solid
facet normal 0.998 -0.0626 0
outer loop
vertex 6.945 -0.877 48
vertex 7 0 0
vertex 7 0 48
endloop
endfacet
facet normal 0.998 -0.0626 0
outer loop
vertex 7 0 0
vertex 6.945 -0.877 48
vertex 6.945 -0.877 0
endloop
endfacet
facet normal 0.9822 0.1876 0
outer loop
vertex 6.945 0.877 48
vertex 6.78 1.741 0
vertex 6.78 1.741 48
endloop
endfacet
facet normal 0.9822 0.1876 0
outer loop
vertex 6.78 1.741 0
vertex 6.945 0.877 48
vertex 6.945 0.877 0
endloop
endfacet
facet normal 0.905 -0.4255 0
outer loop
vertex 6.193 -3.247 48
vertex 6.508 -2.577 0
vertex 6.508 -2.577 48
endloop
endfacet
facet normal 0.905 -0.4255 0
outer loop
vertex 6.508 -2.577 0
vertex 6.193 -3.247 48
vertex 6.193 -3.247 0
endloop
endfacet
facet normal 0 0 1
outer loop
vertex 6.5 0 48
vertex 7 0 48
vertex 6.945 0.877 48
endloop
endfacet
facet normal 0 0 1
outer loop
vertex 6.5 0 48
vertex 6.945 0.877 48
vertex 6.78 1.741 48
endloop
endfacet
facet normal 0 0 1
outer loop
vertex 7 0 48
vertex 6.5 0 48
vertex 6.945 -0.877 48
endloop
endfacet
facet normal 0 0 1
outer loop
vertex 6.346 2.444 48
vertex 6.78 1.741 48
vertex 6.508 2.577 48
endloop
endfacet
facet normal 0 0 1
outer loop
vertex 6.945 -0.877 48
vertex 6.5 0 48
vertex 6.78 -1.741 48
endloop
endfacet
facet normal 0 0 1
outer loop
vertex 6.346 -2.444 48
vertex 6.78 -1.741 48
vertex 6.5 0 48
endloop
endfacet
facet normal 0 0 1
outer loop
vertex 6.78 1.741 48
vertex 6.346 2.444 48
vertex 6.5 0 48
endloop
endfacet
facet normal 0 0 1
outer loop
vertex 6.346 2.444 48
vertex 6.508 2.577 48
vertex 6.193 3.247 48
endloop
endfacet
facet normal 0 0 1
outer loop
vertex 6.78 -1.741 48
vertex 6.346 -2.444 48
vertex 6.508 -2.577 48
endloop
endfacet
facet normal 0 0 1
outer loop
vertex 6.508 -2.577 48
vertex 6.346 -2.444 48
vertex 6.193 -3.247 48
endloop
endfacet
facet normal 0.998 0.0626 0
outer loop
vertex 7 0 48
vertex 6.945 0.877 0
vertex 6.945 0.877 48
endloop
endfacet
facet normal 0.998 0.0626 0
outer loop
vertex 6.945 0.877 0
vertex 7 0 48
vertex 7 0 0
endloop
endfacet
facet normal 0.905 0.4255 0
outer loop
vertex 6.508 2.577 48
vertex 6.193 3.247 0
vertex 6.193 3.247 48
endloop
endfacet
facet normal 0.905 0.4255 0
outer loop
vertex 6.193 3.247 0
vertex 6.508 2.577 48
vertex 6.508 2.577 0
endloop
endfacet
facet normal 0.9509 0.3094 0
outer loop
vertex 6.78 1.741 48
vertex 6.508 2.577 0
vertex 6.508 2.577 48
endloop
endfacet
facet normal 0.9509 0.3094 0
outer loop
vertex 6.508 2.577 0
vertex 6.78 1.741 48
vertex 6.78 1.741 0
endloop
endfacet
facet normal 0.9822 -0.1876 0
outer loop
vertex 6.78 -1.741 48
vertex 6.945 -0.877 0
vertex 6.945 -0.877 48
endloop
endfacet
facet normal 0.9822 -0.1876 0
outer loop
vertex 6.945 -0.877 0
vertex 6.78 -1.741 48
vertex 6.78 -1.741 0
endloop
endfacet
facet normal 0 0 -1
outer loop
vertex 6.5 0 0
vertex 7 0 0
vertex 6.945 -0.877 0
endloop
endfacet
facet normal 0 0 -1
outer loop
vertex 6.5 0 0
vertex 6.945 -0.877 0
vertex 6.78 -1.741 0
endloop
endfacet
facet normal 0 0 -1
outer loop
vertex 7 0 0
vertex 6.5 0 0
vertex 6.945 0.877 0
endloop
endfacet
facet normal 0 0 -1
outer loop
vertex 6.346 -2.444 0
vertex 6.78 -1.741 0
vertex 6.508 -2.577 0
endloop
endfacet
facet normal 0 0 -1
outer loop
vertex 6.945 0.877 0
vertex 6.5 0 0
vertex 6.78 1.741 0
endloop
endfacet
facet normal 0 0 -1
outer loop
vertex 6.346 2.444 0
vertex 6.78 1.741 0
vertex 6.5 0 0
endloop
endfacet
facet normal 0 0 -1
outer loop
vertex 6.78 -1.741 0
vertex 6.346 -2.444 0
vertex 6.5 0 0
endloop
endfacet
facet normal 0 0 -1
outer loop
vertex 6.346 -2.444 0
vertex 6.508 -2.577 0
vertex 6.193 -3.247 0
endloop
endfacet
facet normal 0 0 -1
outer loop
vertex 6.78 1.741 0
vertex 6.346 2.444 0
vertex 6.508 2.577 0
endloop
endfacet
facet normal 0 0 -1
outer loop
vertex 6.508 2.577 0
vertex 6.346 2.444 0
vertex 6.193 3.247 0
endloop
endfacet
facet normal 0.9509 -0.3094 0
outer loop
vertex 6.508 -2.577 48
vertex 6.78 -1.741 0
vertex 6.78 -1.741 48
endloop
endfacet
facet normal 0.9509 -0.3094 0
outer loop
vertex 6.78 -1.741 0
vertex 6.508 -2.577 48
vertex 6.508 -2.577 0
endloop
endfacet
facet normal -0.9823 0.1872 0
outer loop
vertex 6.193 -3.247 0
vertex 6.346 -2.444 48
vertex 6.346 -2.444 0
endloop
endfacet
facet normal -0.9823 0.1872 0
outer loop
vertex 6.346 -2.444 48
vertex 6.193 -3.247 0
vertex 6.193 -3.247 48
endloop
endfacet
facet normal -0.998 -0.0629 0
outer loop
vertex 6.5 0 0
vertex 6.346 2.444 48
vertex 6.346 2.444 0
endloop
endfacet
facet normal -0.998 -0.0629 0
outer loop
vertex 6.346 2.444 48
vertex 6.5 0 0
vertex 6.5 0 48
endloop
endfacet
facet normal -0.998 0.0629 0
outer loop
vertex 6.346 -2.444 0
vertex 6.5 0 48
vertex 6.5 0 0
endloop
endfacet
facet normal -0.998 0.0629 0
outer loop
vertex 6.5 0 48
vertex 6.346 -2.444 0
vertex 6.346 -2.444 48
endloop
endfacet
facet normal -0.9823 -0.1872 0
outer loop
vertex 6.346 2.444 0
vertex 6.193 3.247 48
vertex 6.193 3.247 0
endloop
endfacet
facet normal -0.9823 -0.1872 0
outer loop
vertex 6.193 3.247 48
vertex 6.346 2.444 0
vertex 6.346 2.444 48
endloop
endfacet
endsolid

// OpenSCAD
$fn = 50;


difference() {
	union() {
		cylinder(h = 48, r = 7.0000000000);
		translate(v = [-16.0000000000, 0, 0]) {
			cylinder(h = 48, r = 7.0000000000);
		}
	}
	union() {
		cylinder(h = 48, r = 3.2500000000);
		cylinder(h = 48, r = 1.8000000000);
		cylinder(h = 48, r = 1.8000000000);
		cylinder(h = 48, r = 1.8000000000);
		translate(v = [-20.5000000000, 0, 0]) {
			hull() {
				translate(v = [-3.7500000000, 0.0000000000, 0]) {
					cylinder(h = 48, r = 10.5000000000);
				}
				translate(v = [3.7500000000, 0.0000000000, 0]) {
					cylinder(h = 48, r = 10.5000000000);
				}
				translate(v = [-3.7500000000, -0.0000000000, 0]) {
					cylinder(h = 48, r = 10.5000000000);
				}
				translate(v = [3.7500000000, -0.0000000000, 0]) {
					cylinder(h = 48, r = 10.5000000000);
				}
			}
		}
		translate(v = [-13.0000000000, 0, 0.0000000000]) {
			cylinder(h = 48, r = 19.5000000000);
		}
	}
}
